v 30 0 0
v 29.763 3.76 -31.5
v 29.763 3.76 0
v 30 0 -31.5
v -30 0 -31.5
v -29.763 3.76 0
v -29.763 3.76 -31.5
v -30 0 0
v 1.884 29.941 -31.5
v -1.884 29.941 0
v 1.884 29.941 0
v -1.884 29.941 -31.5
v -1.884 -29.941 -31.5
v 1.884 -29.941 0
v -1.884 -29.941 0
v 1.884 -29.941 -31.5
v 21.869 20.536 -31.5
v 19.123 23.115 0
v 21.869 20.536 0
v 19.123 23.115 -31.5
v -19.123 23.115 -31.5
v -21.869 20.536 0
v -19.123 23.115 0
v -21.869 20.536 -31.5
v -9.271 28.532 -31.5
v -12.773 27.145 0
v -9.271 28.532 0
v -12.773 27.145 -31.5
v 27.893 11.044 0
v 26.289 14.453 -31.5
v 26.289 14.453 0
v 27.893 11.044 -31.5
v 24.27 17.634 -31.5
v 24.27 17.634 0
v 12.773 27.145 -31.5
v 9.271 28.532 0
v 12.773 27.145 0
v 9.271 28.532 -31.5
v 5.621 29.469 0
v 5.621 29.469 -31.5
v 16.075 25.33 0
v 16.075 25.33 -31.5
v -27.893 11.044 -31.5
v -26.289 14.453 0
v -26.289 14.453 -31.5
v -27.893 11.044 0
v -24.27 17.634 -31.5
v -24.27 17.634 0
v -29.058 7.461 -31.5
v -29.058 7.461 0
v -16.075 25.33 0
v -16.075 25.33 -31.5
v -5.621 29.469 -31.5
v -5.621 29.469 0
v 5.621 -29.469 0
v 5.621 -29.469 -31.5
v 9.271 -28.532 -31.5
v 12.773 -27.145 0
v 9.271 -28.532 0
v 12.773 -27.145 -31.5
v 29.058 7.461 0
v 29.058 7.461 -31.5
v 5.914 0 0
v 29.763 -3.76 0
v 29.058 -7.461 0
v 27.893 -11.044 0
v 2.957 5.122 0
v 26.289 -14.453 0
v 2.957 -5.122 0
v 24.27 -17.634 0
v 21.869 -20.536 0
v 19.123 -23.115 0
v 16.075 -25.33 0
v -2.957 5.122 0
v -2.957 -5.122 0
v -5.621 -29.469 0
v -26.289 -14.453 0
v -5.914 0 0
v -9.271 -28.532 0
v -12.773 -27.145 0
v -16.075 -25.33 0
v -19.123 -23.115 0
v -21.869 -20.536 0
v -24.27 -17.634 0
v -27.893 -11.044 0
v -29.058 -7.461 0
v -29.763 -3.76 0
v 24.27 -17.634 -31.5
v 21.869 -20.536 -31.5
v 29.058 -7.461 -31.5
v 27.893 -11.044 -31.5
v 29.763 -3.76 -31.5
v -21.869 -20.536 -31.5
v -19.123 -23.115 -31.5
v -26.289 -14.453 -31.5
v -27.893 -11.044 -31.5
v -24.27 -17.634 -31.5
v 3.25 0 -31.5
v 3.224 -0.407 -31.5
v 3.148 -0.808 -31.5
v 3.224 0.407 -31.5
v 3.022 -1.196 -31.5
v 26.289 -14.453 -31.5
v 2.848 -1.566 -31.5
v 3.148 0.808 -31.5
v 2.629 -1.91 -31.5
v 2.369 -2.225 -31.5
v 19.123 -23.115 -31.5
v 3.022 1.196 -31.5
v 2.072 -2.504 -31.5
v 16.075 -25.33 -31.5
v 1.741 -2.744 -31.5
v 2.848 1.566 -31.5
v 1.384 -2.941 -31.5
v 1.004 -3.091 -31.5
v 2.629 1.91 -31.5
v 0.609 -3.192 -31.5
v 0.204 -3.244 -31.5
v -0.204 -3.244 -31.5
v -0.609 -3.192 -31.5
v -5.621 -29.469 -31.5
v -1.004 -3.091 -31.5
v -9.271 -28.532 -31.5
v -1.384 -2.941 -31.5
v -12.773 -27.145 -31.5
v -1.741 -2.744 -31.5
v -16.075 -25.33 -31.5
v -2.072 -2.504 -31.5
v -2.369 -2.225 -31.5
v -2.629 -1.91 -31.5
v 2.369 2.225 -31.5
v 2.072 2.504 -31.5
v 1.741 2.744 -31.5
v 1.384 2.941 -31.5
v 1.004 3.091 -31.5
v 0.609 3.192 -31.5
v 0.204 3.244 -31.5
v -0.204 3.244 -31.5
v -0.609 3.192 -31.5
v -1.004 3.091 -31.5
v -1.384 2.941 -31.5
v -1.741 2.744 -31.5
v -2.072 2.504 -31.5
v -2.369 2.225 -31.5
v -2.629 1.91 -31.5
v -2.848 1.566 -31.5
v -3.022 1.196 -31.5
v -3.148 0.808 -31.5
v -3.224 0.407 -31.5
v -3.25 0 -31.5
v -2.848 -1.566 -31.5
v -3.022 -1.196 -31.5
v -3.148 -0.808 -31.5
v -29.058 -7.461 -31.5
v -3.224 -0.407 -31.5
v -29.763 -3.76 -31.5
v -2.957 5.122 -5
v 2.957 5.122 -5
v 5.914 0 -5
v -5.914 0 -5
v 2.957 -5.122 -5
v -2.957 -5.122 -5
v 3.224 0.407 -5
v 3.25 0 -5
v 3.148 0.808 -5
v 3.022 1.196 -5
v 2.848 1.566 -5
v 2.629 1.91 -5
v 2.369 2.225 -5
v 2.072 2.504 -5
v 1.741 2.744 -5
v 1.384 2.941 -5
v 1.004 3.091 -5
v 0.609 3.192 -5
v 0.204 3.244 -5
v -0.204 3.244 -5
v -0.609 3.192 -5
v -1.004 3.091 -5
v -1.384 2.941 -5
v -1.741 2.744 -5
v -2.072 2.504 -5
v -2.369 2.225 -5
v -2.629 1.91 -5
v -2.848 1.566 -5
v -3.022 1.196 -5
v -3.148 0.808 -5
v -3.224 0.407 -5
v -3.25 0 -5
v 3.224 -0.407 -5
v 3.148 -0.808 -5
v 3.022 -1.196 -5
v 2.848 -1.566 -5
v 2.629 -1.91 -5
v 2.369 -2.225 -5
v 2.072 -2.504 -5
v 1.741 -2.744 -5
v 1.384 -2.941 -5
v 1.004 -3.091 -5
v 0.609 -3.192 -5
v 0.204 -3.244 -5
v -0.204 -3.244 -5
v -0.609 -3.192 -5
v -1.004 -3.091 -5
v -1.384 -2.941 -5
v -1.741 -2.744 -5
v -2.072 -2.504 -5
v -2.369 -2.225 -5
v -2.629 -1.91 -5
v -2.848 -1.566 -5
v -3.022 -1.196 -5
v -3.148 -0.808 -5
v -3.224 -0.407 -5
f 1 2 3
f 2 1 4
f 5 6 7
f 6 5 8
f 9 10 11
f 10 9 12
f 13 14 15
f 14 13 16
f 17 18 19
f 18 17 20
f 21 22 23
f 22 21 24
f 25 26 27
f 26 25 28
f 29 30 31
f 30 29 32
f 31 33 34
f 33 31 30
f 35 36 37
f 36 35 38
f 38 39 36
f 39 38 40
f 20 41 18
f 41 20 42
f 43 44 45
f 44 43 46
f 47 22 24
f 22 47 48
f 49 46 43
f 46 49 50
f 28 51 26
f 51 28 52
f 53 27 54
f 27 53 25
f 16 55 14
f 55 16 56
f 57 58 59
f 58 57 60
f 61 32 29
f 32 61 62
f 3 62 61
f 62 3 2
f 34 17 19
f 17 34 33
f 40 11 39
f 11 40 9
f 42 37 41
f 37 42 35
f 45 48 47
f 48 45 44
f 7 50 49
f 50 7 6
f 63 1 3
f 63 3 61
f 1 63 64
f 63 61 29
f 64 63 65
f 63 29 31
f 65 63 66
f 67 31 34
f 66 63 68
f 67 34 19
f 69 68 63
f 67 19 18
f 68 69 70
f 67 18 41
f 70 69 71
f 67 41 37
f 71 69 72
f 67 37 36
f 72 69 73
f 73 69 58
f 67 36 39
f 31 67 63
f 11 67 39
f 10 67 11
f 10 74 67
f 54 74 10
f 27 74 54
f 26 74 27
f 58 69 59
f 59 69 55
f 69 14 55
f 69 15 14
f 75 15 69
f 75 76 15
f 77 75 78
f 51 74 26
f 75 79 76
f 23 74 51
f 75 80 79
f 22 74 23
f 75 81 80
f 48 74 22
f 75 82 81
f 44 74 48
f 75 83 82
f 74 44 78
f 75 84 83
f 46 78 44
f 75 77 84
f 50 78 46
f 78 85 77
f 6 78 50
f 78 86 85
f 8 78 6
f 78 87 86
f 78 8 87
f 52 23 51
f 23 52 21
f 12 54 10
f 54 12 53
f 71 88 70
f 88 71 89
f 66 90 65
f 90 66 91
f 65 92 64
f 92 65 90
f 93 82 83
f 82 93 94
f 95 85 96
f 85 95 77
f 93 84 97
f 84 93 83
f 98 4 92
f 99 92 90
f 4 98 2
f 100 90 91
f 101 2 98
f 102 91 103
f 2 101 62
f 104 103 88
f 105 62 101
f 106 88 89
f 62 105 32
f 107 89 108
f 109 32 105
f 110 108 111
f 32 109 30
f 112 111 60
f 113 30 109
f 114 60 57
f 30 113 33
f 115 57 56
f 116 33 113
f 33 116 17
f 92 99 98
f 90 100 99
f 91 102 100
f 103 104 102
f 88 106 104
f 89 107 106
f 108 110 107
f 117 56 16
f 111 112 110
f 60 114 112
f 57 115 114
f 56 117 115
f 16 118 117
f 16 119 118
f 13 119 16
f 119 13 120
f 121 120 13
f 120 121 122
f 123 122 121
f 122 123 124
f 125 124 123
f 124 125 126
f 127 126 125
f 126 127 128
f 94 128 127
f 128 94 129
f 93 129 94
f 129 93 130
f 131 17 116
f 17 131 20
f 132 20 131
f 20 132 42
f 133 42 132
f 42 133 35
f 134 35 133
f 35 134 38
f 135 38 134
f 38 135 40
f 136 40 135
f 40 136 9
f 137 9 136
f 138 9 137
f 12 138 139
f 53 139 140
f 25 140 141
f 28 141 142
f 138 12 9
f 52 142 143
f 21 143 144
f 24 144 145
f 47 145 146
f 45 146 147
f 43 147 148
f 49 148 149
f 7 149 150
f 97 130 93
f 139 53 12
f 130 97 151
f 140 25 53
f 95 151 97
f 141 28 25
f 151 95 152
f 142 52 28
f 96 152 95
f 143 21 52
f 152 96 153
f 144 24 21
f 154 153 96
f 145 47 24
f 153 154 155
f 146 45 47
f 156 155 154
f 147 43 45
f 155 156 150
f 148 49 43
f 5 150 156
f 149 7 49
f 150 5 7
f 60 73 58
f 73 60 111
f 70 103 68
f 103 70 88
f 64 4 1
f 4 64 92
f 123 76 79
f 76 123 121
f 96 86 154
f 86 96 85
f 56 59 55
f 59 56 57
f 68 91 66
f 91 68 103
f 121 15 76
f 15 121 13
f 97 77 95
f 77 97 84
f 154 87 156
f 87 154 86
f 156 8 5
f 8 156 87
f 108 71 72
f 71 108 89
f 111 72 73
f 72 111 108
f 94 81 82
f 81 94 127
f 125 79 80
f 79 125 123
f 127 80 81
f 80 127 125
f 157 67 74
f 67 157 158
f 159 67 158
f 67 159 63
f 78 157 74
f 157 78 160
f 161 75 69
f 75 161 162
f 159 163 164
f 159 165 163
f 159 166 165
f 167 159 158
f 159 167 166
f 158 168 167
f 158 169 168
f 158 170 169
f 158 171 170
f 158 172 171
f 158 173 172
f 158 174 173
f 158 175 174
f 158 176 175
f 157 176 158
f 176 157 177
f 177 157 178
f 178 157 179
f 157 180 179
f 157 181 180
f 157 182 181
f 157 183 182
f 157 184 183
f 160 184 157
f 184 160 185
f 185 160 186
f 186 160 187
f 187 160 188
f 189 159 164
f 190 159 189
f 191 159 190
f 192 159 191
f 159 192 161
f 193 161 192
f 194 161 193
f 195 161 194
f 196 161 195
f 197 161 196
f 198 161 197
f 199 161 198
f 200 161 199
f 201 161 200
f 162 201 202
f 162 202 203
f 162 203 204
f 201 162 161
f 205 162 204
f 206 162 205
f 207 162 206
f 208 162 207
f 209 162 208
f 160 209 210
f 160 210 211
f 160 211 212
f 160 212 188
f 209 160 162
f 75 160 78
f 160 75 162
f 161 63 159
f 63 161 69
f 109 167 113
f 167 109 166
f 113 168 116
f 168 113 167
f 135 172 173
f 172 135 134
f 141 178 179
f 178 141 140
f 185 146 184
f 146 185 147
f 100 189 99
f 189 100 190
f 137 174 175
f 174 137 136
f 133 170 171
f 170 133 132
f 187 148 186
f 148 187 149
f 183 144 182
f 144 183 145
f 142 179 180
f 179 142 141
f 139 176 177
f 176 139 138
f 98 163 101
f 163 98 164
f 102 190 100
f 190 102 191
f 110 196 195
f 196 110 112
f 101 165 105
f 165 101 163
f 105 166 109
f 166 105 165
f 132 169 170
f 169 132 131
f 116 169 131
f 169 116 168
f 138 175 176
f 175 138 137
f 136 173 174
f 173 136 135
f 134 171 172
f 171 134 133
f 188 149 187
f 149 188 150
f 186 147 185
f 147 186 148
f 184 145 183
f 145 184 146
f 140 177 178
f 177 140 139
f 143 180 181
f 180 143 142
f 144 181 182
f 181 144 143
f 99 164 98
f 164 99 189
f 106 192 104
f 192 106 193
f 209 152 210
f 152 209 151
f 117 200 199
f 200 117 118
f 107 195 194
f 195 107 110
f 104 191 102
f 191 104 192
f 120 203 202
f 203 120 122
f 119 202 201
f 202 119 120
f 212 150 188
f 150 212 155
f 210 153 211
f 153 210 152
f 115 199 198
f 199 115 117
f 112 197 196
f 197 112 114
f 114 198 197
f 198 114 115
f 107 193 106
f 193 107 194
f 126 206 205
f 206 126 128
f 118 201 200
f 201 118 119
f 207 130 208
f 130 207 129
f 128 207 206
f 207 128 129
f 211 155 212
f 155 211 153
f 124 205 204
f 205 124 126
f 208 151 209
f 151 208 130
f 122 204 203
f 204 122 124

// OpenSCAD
$fn = 50;

difference() {
	union() {
		translate(v = [0, 0, -31.5]) {
			cylinder(h = 31.5, r = 30.0);
		}
		#translate(v = [0, 0, -33.0]) {
			cylinder(h = 33, r = 2.875);
		}
	}
	union() {
		translate(v = [0, 0, 0]) {
			rotate(a = [0, 0, 0]) {
				difference() {
					union() {
						translate(v = [0, 0, -5]) {
							linear_extrude(height = 5) {
								polygon(points = [[5.914249999999999, 0.0], [2.957125, 5.1218907443321156], [-2.9571249999999982, 5.1218907443321156], [-5.914249999999999, 7.242867331857232e-16], [-2.9571250000000022, -5.121890744332115], [2.9571249999999956, -5.121890744332118]]);
							}
						}
					}
					union();
				}
			}
		}
		#translate(v = [0, 0, -100.0]) {
			cylinder(h = 200, r = 3.25);
		}
	}
}
